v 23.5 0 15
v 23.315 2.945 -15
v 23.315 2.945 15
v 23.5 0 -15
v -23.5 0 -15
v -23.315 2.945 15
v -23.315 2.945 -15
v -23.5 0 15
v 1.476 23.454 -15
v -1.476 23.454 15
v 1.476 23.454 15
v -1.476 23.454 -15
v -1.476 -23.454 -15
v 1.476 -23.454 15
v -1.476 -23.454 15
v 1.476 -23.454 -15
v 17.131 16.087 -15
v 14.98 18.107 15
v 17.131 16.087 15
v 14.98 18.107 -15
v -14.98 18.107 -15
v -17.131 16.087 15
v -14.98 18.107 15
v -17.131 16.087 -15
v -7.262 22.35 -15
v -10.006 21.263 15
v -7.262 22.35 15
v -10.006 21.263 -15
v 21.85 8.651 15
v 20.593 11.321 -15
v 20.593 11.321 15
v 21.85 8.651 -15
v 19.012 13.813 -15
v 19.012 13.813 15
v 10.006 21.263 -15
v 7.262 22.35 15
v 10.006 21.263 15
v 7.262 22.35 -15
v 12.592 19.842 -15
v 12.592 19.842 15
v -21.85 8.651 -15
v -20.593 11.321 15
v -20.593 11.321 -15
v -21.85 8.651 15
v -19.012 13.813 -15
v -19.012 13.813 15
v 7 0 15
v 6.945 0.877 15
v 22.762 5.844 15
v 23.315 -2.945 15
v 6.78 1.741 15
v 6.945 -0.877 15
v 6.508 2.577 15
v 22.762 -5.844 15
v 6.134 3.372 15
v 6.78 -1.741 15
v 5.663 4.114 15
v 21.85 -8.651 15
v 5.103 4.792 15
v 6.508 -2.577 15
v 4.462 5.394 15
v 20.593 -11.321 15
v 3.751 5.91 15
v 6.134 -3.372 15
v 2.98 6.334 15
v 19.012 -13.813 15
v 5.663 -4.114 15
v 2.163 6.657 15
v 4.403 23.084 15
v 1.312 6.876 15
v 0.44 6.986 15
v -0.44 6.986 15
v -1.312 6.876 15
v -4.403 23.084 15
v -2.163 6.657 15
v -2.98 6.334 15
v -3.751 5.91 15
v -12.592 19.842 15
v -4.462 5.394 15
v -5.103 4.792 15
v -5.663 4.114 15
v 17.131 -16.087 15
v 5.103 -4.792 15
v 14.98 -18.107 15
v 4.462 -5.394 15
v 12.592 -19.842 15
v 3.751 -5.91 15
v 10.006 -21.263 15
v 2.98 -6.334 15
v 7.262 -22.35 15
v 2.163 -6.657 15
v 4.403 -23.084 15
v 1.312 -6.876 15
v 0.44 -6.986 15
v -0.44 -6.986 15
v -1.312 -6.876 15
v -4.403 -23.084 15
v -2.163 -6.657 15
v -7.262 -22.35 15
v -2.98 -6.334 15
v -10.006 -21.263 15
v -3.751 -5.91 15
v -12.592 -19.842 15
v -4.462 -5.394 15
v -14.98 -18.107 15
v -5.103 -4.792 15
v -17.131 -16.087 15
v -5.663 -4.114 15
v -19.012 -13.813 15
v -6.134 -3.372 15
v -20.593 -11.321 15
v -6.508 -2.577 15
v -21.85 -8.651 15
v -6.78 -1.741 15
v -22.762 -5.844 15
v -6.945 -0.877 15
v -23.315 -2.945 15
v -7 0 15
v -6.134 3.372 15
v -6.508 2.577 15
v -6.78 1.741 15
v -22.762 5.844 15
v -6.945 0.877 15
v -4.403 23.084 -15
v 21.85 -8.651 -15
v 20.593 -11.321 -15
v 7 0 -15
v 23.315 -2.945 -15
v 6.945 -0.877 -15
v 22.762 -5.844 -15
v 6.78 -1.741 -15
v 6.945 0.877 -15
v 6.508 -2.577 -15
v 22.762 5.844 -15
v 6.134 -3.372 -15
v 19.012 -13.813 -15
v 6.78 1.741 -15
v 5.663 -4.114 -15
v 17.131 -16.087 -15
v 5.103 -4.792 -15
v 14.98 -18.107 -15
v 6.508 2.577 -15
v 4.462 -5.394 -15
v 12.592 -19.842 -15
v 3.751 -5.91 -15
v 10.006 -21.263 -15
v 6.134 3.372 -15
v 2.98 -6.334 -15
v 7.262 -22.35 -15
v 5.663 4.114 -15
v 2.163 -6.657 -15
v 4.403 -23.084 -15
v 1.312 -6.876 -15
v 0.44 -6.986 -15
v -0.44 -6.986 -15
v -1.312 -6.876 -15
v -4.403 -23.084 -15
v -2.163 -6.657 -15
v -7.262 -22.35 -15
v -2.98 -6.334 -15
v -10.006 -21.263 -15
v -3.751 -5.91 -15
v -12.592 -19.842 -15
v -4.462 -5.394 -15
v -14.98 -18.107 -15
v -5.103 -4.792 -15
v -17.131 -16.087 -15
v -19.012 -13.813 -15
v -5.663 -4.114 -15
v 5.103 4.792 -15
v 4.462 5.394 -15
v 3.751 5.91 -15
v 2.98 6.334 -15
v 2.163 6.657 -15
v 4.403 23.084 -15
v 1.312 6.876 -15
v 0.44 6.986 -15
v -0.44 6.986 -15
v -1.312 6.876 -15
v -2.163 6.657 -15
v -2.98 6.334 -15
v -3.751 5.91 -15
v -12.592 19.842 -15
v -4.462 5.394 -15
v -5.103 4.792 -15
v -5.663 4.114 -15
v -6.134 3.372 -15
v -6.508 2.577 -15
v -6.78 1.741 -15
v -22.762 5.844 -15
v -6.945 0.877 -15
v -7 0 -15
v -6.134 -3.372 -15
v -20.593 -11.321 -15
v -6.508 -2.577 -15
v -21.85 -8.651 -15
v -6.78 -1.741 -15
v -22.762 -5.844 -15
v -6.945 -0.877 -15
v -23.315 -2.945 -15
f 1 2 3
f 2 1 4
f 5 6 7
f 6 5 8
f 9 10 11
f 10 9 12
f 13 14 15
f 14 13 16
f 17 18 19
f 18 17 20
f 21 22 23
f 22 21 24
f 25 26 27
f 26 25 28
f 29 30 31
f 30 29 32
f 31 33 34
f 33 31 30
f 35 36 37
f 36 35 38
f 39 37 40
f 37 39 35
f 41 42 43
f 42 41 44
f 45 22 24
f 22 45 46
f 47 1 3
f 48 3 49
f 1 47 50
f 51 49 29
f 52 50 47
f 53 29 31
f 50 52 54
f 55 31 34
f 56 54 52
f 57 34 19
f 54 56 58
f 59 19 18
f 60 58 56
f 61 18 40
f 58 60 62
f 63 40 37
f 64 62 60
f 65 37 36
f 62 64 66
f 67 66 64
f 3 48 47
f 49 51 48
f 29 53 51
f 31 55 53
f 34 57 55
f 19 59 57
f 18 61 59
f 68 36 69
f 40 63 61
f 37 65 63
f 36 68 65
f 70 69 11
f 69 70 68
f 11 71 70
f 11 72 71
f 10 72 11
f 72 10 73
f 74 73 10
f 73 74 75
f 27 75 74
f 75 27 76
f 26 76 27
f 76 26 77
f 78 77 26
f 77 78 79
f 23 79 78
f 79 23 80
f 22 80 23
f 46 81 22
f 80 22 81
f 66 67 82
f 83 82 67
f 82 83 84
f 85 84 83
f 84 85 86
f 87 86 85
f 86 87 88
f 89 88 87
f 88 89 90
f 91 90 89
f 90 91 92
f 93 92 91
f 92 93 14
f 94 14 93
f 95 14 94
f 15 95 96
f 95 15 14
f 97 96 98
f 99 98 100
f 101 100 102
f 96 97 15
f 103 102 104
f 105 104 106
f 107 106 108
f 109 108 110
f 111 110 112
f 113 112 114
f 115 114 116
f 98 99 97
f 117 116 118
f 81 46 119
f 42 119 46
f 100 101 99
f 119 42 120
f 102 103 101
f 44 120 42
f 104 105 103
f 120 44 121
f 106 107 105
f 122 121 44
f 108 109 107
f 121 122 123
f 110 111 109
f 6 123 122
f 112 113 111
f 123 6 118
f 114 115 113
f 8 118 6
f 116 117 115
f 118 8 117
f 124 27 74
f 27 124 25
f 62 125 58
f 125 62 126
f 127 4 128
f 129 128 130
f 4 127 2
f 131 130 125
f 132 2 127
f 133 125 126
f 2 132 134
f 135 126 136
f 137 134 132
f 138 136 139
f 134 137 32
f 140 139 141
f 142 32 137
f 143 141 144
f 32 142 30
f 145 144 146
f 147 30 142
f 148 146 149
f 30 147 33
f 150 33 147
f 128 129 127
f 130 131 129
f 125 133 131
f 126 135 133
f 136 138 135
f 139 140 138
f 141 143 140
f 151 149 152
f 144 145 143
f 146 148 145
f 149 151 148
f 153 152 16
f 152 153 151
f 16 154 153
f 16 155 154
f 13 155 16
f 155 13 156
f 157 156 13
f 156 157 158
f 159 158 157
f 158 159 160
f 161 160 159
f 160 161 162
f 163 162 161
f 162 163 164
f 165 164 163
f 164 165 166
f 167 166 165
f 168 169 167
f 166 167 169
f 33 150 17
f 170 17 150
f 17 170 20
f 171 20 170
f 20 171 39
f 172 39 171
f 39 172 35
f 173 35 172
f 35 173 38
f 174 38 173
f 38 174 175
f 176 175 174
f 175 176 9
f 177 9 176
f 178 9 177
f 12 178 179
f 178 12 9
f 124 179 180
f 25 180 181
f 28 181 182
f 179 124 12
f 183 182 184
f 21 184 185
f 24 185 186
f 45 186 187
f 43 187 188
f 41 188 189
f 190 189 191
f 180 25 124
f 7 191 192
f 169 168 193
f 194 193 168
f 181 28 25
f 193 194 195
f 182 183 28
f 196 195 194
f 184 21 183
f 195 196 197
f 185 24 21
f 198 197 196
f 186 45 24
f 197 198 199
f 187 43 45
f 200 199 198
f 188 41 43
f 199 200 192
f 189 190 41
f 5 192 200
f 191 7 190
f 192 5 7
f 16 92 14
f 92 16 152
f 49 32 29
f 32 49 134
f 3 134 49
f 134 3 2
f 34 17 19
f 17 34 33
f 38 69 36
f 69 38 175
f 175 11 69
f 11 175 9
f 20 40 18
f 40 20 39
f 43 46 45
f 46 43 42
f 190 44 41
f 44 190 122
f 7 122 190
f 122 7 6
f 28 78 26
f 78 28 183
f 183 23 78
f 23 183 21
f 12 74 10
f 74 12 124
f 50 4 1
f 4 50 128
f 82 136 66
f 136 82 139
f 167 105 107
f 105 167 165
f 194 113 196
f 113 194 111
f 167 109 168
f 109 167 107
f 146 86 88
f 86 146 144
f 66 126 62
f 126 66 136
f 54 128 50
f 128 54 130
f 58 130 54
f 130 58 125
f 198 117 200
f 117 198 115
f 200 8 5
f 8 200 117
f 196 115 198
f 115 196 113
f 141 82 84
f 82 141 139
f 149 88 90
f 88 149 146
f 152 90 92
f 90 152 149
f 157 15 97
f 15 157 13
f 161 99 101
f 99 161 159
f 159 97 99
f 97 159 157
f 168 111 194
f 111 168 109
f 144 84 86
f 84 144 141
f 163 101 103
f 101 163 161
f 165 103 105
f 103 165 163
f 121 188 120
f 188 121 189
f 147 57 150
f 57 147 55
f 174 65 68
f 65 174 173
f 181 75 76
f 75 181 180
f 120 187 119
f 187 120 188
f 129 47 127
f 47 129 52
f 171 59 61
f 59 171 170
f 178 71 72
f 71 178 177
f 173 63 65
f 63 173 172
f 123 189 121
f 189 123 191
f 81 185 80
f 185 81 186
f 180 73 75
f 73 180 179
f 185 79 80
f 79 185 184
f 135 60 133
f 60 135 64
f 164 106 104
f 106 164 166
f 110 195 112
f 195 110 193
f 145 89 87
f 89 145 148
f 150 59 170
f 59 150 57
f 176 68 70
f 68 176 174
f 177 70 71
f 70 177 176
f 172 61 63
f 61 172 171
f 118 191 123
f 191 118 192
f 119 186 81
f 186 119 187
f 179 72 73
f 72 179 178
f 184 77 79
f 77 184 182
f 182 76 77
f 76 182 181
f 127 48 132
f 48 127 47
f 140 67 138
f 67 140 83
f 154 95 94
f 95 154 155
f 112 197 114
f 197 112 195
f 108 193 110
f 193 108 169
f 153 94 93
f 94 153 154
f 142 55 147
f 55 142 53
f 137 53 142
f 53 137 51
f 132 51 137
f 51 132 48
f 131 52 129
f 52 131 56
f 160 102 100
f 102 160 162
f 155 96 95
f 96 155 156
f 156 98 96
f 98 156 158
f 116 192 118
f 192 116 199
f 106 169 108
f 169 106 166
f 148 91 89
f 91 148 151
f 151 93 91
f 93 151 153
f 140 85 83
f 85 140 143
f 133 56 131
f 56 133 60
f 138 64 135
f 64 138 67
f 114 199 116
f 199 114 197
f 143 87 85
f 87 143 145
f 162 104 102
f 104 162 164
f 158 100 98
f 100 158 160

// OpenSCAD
$fn = 50;


difference() {
	union() {
		translate(v = [0, 0, -15.0000000000]) {
			cylinder(h = 30, r = 23.5000000000);
		}
	}
	union() {
		translate(v = [0, 0, -100.0000000000]) {
			cylinder(h = 200, r = 7);
		}
	}
}
